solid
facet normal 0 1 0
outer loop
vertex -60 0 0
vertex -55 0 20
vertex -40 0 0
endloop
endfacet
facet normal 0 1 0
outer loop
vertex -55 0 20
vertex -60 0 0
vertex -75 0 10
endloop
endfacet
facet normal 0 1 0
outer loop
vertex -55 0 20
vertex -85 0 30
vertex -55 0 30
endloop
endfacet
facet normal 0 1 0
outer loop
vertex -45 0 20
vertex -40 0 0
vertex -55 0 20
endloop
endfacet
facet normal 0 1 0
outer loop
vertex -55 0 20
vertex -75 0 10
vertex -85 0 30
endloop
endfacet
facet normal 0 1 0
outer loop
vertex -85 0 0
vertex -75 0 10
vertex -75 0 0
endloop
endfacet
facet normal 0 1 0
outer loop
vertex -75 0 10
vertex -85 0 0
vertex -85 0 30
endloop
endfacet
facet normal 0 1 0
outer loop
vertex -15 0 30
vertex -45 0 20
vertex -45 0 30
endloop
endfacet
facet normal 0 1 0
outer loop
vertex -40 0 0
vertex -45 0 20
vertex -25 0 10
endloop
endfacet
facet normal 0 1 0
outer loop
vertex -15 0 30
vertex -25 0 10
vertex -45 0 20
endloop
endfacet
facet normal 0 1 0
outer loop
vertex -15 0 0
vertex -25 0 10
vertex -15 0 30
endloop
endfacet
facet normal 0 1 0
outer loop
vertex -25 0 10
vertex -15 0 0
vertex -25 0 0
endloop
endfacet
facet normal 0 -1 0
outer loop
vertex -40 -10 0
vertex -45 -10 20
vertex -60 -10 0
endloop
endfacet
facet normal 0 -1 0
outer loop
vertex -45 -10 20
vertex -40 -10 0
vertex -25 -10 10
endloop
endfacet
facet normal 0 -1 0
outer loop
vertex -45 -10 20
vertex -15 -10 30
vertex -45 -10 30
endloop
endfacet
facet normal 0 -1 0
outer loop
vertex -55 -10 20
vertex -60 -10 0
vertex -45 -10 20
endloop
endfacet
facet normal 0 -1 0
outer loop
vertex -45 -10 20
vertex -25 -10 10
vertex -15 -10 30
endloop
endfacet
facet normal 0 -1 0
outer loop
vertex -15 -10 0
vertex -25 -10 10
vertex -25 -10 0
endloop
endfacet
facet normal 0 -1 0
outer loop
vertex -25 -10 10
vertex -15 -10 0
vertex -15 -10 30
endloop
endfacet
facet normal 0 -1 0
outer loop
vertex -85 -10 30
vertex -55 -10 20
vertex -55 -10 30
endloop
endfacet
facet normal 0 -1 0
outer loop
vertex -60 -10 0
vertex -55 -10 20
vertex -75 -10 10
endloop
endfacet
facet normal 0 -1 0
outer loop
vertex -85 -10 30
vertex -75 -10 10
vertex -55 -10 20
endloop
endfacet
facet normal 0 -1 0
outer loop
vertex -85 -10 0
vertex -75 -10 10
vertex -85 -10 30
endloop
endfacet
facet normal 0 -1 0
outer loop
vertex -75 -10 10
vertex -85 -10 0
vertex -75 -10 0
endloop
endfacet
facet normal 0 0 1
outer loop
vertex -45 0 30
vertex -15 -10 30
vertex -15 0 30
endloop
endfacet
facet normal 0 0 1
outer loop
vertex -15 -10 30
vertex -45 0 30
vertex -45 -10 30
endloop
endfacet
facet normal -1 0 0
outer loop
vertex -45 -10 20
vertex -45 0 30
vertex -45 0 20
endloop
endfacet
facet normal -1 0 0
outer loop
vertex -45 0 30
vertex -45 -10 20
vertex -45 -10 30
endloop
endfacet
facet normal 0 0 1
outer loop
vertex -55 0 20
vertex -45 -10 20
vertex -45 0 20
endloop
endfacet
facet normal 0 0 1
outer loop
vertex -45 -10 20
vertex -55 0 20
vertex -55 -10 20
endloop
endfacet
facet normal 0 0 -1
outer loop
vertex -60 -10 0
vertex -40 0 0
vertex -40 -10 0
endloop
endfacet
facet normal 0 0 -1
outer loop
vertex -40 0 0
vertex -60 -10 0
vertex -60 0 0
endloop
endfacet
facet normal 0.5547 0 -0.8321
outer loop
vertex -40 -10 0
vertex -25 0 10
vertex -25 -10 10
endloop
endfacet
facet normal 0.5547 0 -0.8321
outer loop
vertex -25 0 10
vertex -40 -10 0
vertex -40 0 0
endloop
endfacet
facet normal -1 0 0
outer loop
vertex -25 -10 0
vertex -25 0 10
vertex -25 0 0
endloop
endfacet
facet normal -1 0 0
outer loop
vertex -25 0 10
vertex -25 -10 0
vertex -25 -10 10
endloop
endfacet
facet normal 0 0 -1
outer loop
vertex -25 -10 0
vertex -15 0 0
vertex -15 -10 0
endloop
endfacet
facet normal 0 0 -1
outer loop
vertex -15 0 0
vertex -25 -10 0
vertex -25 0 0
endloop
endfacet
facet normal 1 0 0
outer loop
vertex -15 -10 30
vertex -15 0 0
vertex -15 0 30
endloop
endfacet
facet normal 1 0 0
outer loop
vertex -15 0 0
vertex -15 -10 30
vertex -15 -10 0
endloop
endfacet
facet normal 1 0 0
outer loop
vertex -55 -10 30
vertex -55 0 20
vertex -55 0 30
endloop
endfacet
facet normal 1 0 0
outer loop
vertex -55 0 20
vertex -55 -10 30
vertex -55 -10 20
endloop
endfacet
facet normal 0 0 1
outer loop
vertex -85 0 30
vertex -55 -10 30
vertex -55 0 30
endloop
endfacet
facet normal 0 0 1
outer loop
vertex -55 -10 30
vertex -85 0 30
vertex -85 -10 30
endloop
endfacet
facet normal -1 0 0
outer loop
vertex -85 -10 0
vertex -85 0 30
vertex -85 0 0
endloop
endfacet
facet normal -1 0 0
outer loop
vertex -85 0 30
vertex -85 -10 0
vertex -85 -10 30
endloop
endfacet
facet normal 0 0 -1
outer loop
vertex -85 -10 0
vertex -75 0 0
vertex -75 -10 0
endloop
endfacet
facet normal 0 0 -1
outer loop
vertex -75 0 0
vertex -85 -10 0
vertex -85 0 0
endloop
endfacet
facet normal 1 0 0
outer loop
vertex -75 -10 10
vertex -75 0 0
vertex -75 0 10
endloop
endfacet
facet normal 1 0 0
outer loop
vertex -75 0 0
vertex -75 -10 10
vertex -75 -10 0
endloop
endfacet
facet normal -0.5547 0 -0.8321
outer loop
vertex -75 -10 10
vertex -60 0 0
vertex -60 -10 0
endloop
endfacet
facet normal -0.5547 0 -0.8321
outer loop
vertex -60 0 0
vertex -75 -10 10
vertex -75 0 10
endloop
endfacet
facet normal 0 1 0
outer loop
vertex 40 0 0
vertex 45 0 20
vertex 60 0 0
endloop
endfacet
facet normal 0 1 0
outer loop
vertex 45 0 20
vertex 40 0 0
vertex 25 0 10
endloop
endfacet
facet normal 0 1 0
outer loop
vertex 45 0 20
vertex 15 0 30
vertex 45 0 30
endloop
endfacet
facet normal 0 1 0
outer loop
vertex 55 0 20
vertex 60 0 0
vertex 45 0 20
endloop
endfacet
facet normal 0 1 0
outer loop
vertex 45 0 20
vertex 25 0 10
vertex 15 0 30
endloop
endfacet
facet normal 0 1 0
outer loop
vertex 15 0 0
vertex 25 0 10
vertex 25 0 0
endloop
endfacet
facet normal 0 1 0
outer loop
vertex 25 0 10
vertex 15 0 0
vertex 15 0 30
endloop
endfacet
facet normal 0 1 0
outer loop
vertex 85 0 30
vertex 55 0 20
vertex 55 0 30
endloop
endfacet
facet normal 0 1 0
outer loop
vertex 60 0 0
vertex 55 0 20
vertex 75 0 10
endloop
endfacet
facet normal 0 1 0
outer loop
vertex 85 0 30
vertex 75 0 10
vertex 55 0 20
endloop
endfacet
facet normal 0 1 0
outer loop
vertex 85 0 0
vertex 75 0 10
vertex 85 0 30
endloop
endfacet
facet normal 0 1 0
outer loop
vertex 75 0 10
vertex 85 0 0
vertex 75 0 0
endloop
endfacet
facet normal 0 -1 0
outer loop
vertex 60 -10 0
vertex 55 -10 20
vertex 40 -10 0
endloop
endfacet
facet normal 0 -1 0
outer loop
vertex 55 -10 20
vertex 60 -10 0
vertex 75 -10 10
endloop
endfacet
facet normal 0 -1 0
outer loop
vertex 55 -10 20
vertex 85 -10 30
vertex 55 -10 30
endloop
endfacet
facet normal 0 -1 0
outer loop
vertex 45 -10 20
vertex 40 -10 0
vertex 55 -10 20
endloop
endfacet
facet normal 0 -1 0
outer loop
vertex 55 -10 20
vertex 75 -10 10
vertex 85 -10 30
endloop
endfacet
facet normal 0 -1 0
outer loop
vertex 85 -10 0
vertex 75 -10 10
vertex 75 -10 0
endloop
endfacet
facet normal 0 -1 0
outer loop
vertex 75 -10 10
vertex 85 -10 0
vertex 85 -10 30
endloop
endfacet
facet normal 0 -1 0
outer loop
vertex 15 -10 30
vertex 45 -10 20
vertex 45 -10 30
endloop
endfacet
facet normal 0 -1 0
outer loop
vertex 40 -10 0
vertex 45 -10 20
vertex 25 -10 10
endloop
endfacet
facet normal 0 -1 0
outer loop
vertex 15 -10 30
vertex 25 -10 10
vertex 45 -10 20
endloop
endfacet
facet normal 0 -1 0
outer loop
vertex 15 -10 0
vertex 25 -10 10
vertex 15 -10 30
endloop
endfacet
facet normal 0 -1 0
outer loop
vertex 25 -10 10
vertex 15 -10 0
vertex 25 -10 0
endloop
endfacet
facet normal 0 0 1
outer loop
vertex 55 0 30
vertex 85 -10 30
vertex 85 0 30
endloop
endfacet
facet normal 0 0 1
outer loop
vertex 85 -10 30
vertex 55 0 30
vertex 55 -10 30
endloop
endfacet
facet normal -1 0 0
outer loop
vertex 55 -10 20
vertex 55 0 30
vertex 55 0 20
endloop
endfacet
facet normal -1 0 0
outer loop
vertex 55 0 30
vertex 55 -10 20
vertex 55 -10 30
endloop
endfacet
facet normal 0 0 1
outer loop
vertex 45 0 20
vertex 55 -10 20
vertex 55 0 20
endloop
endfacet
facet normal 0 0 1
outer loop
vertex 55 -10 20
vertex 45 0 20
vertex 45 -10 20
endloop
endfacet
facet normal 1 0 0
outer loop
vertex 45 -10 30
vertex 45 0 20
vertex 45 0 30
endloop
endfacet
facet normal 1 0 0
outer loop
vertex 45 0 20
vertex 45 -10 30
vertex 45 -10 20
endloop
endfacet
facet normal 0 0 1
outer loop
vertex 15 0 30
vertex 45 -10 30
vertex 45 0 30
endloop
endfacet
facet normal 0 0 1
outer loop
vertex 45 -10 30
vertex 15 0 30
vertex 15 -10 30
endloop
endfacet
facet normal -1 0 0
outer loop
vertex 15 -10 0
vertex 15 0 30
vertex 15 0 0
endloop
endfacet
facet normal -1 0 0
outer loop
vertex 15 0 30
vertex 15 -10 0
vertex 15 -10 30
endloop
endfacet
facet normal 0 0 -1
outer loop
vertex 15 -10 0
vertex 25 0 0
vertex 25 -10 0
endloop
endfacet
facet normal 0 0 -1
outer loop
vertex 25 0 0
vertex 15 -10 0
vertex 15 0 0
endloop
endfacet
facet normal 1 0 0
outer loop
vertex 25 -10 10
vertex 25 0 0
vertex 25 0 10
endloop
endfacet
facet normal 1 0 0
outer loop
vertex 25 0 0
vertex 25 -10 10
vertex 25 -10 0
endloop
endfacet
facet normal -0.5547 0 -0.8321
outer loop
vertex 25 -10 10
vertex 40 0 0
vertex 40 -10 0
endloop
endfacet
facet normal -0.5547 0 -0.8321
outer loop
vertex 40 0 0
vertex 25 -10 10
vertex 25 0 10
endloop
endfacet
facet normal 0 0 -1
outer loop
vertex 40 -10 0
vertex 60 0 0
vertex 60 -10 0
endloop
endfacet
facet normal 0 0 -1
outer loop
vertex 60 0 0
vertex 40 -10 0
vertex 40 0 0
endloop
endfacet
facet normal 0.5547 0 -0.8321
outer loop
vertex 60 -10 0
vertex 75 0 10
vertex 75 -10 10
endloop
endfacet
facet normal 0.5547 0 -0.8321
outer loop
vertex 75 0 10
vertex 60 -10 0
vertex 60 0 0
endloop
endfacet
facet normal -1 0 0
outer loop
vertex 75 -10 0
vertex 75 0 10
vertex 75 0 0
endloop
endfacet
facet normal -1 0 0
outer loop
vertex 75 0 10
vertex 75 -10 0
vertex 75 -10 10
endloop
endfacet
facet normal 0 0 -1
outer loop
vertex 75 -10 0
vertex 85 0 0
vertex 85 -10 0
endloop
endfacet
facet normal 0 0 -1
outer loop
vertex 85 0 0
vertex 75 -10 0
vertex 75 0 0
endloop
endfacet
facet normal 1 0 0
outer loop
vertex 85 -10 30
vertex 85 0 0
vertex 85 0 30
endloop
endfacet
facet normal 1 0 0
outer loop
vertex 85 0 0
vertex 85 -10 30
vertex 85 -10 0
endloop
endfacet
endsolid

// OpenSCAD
// Draw directly
module method1() {
    difference() {
        square([30,70]);
        translate([20,30]) square([10,10]);
        polygon([[0,10],[10,10],[0,25]]);
        polygon([[0,45],[10,60],[0,60]]);
    }
}

// Use mirror()
module method2() {
    translate([0,-35])
    difference() {
        square([30,35]);
        translate([20,30]) square([10,5]);
        polygon([[0,10],[10,10],[0,25]]);
    }
}

translate([85, 0, 0]) rotate([0, -90, 90]) linear_extrude(10) method1();


translate([-50, 0, 0])
rotate([0, -90, 90]) {
    linear_extrude(10) method2();
    linear_extrude(10) mirror([0,-35]) method2();
}
